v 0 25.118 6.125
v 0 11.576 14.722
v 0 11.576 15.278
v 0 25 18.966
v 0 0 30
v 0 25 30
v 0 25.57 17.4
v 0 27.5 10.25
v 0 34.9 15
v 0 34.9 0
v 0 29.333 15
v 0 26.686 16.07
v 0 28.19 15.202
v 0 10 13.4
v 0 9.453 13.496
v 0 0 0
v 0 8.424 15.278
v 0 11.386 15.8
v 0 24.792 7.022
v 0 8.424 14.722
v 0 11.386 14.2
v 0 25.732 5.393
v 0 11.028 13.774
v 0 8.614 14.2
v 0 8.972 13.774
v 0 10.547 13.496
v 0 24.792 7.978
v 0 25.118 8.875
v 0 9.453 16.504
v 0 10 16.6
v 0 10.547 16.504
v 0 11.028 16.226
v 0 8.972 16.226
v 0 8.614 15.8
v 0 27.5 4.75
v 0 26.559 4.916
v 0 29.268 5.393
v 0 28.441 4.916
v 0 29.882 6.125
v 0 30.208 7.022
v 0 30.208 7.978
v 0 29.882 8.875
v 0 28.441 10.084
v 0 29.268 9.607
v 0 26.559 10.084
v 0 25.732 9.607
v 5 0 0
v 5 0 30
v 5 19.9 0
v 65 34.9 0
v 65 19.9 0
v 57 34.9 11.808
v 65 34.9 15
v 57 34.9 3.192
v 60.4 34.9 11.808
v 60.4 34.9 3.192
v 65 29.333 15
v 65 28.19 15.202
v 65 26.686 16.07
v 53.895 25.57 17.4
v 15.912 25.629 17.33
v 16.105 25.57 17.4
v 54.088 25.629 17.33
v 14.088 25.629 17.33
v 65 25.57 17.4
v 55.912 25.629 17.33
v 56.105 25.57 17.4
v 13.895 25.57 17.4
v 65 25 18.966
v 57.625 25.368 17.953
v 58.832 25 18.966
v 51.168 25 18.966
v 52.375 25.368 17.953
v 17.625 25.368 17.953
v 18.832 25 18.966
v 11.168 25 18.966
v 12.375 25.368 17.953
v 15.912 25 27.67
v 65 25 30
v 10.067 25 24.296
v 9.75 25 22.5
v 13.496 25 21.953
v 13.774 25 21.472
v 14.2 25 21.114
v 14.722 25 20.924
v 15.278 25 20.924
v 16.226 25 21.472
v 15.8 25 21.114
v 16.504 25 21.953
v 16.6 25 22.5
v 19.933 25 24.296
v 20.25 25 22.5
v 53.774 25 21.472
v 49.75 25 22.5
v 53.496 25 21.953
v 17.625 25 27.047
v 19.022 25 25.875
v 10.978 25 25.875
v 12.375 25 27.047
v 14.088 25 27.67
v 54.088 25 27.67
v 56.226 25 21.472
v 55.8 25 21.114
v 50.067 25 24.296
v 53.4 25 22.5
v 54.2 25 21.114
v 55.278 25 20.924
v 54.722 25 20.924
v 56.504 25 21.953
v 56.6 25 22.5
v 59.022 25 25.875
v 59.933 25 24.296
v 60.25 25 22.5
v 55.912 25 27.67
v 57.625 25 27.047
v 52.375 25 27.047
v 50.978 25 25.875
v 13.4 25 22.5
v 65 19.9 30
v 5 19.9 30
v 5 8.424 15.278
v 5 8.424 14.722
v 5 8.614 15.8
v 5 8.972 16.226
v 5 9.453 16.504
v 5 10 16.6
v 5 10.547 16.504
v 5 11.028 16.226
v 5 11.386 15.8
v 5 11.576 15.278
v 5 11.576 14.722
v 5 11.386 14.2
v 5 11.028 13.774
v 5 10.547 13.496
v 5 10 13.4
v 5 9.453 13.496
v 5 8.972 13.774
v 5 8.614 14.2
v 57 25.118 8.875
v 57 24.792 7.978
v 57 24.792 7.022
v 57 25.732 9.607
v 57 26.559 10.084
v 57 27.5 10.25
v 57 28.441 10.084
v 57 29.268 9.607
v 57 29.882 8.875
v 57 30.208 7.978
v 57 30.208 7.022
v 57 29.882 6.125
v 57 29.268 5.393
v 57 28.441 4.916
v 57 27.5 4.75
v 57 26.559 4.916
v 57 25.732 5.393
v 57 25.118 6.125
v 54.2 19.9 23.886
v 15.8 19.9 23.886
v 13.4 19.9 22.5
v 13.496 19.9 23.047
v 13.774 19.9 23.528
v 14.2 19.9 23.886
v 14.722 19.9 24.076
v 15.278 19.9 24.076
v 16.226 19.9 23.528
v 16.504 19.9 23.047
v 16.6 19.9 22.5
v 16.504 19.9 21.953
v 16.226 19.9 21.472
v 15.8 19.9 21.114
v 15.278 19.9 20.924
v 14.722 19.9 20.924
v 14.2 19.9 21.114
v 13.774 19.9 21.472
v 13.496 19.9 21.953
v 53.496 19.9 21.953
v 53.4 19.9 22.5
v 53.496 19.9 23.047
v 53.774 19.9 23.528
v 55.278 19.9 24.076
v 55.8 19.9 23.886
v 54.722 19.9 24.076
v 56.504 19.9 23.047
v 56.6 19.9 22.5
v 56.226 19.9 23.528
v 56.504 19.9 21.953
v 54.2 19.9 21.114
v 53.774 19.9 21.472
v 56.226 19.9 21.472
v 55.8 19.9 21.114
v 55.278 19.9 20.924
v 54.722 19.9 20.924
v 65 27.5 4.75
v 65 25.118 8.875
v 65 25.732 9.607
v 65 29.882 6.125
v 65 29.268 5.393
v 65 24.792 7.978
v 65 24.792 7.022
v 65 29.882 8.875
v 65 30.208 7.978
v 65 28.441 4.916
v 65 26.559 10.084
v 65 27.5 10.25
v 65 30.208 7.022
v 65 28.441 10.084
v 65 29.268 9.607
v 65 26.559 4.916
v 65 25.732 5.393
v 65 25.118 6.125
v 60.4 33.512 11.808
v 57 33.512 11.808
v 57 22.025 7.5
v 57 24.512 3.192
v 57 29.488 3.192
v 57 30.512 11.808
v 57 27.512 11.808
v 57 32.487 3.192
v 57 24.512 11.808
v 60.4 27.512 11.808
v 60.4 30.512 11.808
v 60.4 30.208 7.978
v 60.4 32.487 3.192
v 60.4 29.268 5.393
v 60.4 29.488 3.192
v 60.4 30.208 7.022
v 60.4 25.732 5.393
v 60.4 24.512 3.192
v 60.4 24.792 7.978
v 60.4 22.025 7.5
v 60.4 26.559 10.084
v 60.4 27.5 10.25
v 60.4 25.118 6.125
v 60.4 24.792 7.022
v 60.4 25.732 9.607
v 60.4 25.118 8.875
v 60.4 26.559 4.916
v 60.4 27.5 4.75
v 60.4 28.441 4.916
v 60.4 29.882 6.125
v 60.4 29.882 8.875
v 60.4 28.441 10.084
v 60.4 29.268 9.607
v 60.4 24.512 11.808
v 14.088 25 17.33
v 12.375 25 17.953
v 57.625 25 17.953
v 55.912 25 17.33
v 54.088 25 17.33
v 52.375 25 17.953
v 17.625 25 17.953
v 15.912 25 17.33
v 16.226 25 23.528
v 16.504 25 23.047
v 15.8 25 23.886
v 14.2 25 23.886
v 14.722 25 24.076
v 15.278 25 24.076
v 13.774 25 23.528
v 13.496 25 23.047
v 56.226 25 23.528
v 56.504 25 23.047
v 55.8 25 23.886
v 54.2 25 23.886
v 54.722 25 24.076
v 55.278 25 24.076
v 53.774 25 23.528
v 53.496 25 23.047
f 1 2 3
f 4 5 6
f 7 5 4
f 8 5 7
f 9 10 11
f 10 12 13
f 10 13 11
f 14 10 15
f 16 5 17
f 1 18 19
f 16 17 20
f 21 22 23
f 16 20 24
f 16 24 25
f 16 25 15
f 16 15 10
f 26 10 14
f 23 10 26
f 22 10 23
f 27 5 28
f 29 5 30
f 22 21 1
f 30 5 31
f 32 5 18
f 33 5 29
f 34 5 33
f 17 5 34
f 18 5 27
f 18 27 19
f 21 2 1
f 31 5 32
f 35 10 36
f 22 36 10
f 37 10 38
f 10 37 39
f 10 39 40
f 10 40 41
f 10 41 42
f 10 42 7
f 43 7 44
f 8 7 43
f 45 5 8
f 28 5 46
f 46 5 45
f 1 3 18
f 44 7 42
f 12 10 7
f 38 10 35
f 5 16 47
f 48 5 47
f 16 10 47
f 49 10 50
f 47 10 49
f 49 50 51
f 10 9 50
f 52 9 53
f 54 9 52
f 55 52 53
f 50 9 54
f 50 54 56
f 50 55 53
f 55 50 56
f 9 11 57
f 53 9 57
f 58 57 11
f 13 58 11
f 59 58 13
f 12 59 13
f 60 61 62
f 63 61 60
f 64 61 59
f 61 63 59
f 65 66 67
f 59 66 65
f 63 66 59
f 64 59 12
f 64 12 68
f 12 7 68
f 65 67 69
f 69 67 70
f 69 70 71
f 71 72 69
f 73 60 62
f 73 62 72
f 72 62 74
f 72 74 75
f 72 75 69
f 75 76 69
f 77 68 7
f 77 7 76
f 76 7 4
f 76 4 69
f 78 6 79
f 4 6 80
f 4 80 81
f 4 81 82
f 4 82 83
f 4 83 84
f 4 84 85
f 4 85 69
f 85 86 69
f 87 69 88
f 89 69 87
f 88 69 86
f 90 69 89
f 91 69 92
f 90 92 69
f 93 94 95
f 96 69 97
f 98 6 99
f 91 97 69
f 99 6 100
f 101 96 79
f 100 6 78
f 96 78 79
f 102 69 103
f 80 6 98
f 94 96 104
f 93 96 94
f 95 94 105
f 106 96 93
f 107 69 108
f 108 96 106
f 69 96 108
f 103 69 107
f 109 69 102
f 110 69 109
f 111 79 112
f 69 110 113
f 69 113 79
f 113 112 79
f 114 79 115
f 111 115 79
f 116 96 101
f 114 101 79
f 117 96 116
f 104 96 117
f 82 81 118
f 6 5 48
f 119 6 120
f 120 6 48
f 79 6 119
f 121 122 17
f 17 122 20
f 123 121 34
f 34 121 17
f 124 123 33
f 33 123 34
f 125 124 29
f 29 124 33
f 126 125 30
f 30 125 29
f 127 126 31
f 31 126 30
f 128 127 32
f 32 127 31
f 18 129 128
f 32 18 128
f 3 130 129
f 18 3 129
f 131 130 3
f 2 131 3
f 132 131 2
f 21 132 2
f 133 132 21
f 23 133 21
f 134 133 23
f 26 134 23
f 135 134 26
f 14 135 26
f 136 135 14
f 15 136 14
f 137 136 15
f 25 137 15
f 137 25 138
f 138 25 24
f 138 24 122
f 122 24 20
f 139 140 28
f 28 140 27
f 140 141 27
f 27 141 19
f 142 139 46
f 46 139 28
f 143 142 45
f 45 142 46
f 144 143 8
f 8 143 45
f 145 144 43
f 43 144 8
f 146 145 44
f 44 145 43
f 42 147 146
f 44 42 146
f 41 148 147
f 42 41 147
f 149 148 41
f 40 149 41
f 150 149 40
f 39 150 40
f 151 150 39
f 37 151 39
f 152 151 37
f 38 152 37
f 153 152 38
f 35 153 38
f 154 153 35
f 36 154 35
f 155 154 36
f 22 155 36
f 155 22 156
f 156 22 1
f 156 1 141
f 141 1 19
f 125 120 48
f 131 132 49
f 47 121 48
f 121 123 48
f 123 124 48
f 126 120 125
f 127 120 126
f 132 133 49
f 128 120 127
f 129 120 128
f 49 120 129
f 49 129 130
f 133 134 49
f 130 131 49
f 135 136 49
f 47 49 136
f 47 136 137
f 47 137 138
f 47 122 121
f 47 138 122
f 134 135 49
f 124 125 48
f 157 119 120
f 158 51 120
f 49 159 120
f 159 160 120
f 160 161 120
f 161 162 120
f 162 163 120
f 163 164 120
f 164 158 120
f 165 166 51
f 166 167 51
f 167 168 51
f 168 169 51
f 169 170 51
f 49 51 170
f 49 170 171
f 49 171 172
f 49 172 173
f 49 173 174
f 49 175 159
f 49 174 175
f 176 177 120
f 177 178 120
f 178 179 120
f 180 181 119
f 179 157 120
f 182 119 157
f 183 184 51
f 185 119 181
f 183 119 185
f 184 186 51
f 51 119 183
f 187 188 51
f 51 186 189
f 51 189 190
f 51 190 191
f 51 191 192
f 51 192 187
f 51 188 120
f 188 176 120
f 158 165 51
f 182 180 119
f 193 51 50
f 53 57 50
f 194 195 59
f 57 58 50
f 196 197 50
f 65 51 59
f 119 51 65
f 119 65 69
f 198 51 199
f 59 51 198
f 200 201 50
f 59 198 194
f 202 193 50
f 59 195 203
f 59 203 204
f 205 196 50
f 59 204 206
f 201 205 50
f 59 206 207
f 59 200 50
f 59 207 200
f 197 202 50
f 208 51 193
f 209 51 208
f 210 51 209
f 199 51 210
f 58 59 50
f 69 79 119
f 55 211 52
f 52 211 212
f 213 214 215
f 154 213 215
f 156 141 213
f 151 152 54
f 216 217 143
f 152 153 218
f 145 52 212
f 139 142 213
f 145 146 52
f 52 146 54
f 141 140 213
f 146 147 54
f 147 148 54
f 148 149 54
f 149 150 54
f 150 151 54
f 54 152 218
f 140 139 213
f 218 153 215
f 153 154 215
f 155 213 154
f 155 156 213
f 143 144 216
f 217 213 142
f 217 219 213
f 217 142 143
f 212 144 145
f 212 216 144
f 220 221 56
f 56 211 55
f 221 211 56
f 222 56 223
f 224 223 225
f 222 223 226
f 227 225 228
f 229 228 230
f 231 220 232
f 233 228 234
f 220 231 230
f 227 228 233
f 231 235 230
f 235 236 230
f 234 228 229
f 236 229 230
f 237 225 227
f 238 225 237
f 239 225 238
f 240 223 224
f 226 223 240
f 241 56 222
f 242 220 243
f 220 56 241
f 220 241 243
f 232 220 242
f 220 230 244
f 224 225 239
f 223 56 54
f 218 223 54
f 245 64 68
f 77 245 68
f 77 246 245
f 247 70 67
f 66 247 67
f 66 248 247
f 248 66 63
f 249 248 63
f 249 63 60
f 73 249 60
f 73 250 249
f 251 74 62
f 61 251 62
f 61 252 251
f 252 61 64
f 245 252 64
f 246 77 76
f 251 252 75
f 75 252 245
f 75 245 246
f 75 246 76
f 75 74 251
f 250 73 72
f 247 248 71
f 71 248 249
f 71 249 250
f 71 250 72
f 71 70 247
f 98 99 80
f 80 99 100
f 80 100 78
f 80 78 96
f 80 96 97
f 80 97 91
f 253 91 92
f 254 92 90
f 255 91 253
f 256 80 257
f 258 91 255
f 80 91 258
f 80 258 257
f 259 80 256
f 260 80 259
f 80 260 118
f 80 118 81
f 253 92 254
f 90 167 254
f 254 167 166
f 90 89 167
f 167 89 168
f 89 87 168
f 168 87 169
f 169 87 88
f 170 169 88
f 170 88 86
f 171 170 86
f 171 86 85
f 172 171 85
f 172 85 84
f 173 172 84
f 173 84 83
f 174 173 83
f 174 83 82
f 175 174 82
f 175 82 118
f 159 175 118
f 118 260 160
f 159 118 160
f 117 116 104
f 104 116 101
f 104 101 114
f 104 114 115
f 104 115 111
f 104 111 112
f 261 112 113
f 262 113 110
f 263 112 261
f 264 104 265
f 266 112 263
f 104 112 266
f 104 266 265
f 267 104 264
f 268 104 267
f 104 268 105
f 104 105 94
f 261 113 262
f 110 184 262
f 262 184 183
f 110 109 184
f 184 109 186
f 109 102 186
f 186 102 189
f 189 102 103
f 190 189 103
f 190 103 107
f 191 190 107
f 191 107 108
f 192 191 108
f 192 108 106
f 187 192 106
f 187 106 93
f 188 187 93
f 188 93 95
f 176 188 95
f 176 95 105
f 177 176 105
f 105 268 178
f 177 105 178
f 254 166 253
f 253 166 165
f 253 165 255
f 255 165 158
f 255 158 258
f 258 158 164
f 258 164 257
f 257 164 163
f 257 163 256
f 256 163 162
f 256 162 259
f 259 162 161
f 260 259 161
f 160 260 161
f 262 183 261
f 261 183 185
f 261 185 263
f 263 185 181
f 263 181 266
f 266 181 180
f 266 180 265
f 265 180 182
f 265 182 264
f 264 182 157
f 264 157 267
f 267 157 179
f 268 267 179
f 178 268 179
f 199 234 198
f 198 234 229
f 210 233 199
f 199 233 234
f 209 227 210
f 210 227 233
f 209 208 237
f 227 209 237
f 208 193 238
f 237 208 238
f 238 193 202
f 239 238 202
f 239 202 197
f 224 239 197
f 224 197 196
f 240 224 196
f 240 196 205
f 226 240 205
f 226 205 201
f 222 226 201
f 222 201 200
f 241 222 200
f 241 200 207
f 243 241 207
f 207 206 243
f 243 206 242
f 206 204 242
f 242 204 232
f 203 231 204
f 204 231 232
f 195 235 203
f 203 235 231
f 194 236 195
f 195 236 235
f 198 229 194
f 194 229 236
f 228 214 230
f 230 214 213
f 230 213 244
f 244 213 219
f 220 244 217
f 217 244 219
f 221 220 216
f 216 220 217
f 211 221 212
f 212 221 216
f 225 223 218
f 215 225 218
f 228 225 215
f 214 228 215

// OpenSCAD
// file: configuration.scad
$fn = 18;

wall = 5;

bolt_slop = .5;
nut_slop = .85;
bolt_dia = 5+bolt_slop;
bolt_rad = bolt_dia/2;
bolt_cap_dia = 10+bolt_slop;
bolt_cap_rad = bolt_cap_dia/2;
nut_dia = 9+nut_slop;
nut_rad = nut_dia/2;
nut_height = 3;

ext_x = 20;
ext_y = 60;
// main file
include <configuration.scad>;

bed_thickness=4;
bed_radius=14*25.4/2;
bolt_cap_thickness = bolt_cap_rad/2;

arc = 20;



//bed_clip();

//translate([-30,30,0])
bed_mount_side();

module bed_clip(){
	clip_thickness = wall*2;
	clip_width = wall*2;
	translate([-bed_radius+clip_width/2,-arc,0])
	difference(){
		//makes a pie slice
		intersection(){
			cylinder(r=bed_radius+clip_width, h=clip_thickness, $fn=36*20);
			cube([bed_radius+clip_width,bed_radius+clip_width,clip_thickness]);
    			rotate(arc-90) cube([bed_radius+clip_width,bed_radius+clip_width,clip_thickness]);
		}

		translate([0,0,-.1]) cylinder(r=bed_radius-clip_width, h=clip_thickness+.2, $fn=36*20);
		
		translate([0,0,clip_thickness-bed_thickness]) cylinder(r=bed_radius, h=bed_thickness+.1, $fn=36*20);
	
		rotate([0,0,arc/2]) translate([bed_radius+clip_width/2,0,-.1]){
			cylinder(r=bolt_rad+.1, h=5+.2);
			translate([0,0,wall+.1]) cylinder(r1=bolt_rad+.1, r2=bolt_cap_rad, h=bolt_cap_thickness+.1);
			translate([0,0,wall+bolt_cap_thickness+.1]) cylinder(r=bolt_cap_rad, h=bolt_cap_thickness+.1);
		}
	}
}

module bed_mount_side(){
	boltsize=4.5/2;
	bolthead=7.5/2;
	boltthick = 5;

	//make the screws 3mm
	screw_rad = 3.2/2;
	//screw_rad = bolt_rad;

	thickness=wall*3;

	difference(){
		union(){
			cube([ext_y+wall, ext_x+wall, thickness*2]);
	
			//backpack
			translate([0,ext_x-.1,0]) cube([ext_y+wall, wall*3, thickness]);

			//wing for attachment, with fillet
			translate([0,ext_x-.1,thickness-.1]) cube([ext_y+wall, wall, thickness+.1]);
			difference(){
				translate([0,ext_x+wall-.1,thickness-.1]) cube([ext_y+wall,wall,wall]);
				translate([-.1,ext_x+wall*2-.1,wall+thickness-.1]) rotate([0,90,0]) cylinder(r=wall, h=ext_y+wall+.2);
			}
		}

		//extrusion slot
		translate([wall, -.1, -.1]) cube([ext_y+.1, ext_x, thickness*2+.2]);

		//extrusion screws
		translate([-10,ext_x/2,thickness]) rotate([0,90,0]) cylinder(r=screw_rad, h=100);
		for(i=[10+wall,wall+50]) translate([ i, ext_x, thickness*1.5]) rotate ([-90,0,0]) {
			translate([0,0,-wall]) cylinder(h = wall*4, r=screw_rad);
			translate([0,0,wall]) cylinder(h = thickness, r=bolt_cap_rad);
		}
			
		//bolt slot
		translate([-1, ext_x+wall*1.5,thickness/2]) rotate([0,90,0]) cylinder(r=bolt_rad, h=ext_y+wall*3);

		//nut slot
		for(i=[0:3:20]) translate([ext_y-nut_height, ext_x+wall*1.4+i,thickness/2]) rotate([0,90,0]) rotate([0,0,30]) cylinder(r=nut_rad+.05, h=nut_height+.4, $fn=6);
	}
}
